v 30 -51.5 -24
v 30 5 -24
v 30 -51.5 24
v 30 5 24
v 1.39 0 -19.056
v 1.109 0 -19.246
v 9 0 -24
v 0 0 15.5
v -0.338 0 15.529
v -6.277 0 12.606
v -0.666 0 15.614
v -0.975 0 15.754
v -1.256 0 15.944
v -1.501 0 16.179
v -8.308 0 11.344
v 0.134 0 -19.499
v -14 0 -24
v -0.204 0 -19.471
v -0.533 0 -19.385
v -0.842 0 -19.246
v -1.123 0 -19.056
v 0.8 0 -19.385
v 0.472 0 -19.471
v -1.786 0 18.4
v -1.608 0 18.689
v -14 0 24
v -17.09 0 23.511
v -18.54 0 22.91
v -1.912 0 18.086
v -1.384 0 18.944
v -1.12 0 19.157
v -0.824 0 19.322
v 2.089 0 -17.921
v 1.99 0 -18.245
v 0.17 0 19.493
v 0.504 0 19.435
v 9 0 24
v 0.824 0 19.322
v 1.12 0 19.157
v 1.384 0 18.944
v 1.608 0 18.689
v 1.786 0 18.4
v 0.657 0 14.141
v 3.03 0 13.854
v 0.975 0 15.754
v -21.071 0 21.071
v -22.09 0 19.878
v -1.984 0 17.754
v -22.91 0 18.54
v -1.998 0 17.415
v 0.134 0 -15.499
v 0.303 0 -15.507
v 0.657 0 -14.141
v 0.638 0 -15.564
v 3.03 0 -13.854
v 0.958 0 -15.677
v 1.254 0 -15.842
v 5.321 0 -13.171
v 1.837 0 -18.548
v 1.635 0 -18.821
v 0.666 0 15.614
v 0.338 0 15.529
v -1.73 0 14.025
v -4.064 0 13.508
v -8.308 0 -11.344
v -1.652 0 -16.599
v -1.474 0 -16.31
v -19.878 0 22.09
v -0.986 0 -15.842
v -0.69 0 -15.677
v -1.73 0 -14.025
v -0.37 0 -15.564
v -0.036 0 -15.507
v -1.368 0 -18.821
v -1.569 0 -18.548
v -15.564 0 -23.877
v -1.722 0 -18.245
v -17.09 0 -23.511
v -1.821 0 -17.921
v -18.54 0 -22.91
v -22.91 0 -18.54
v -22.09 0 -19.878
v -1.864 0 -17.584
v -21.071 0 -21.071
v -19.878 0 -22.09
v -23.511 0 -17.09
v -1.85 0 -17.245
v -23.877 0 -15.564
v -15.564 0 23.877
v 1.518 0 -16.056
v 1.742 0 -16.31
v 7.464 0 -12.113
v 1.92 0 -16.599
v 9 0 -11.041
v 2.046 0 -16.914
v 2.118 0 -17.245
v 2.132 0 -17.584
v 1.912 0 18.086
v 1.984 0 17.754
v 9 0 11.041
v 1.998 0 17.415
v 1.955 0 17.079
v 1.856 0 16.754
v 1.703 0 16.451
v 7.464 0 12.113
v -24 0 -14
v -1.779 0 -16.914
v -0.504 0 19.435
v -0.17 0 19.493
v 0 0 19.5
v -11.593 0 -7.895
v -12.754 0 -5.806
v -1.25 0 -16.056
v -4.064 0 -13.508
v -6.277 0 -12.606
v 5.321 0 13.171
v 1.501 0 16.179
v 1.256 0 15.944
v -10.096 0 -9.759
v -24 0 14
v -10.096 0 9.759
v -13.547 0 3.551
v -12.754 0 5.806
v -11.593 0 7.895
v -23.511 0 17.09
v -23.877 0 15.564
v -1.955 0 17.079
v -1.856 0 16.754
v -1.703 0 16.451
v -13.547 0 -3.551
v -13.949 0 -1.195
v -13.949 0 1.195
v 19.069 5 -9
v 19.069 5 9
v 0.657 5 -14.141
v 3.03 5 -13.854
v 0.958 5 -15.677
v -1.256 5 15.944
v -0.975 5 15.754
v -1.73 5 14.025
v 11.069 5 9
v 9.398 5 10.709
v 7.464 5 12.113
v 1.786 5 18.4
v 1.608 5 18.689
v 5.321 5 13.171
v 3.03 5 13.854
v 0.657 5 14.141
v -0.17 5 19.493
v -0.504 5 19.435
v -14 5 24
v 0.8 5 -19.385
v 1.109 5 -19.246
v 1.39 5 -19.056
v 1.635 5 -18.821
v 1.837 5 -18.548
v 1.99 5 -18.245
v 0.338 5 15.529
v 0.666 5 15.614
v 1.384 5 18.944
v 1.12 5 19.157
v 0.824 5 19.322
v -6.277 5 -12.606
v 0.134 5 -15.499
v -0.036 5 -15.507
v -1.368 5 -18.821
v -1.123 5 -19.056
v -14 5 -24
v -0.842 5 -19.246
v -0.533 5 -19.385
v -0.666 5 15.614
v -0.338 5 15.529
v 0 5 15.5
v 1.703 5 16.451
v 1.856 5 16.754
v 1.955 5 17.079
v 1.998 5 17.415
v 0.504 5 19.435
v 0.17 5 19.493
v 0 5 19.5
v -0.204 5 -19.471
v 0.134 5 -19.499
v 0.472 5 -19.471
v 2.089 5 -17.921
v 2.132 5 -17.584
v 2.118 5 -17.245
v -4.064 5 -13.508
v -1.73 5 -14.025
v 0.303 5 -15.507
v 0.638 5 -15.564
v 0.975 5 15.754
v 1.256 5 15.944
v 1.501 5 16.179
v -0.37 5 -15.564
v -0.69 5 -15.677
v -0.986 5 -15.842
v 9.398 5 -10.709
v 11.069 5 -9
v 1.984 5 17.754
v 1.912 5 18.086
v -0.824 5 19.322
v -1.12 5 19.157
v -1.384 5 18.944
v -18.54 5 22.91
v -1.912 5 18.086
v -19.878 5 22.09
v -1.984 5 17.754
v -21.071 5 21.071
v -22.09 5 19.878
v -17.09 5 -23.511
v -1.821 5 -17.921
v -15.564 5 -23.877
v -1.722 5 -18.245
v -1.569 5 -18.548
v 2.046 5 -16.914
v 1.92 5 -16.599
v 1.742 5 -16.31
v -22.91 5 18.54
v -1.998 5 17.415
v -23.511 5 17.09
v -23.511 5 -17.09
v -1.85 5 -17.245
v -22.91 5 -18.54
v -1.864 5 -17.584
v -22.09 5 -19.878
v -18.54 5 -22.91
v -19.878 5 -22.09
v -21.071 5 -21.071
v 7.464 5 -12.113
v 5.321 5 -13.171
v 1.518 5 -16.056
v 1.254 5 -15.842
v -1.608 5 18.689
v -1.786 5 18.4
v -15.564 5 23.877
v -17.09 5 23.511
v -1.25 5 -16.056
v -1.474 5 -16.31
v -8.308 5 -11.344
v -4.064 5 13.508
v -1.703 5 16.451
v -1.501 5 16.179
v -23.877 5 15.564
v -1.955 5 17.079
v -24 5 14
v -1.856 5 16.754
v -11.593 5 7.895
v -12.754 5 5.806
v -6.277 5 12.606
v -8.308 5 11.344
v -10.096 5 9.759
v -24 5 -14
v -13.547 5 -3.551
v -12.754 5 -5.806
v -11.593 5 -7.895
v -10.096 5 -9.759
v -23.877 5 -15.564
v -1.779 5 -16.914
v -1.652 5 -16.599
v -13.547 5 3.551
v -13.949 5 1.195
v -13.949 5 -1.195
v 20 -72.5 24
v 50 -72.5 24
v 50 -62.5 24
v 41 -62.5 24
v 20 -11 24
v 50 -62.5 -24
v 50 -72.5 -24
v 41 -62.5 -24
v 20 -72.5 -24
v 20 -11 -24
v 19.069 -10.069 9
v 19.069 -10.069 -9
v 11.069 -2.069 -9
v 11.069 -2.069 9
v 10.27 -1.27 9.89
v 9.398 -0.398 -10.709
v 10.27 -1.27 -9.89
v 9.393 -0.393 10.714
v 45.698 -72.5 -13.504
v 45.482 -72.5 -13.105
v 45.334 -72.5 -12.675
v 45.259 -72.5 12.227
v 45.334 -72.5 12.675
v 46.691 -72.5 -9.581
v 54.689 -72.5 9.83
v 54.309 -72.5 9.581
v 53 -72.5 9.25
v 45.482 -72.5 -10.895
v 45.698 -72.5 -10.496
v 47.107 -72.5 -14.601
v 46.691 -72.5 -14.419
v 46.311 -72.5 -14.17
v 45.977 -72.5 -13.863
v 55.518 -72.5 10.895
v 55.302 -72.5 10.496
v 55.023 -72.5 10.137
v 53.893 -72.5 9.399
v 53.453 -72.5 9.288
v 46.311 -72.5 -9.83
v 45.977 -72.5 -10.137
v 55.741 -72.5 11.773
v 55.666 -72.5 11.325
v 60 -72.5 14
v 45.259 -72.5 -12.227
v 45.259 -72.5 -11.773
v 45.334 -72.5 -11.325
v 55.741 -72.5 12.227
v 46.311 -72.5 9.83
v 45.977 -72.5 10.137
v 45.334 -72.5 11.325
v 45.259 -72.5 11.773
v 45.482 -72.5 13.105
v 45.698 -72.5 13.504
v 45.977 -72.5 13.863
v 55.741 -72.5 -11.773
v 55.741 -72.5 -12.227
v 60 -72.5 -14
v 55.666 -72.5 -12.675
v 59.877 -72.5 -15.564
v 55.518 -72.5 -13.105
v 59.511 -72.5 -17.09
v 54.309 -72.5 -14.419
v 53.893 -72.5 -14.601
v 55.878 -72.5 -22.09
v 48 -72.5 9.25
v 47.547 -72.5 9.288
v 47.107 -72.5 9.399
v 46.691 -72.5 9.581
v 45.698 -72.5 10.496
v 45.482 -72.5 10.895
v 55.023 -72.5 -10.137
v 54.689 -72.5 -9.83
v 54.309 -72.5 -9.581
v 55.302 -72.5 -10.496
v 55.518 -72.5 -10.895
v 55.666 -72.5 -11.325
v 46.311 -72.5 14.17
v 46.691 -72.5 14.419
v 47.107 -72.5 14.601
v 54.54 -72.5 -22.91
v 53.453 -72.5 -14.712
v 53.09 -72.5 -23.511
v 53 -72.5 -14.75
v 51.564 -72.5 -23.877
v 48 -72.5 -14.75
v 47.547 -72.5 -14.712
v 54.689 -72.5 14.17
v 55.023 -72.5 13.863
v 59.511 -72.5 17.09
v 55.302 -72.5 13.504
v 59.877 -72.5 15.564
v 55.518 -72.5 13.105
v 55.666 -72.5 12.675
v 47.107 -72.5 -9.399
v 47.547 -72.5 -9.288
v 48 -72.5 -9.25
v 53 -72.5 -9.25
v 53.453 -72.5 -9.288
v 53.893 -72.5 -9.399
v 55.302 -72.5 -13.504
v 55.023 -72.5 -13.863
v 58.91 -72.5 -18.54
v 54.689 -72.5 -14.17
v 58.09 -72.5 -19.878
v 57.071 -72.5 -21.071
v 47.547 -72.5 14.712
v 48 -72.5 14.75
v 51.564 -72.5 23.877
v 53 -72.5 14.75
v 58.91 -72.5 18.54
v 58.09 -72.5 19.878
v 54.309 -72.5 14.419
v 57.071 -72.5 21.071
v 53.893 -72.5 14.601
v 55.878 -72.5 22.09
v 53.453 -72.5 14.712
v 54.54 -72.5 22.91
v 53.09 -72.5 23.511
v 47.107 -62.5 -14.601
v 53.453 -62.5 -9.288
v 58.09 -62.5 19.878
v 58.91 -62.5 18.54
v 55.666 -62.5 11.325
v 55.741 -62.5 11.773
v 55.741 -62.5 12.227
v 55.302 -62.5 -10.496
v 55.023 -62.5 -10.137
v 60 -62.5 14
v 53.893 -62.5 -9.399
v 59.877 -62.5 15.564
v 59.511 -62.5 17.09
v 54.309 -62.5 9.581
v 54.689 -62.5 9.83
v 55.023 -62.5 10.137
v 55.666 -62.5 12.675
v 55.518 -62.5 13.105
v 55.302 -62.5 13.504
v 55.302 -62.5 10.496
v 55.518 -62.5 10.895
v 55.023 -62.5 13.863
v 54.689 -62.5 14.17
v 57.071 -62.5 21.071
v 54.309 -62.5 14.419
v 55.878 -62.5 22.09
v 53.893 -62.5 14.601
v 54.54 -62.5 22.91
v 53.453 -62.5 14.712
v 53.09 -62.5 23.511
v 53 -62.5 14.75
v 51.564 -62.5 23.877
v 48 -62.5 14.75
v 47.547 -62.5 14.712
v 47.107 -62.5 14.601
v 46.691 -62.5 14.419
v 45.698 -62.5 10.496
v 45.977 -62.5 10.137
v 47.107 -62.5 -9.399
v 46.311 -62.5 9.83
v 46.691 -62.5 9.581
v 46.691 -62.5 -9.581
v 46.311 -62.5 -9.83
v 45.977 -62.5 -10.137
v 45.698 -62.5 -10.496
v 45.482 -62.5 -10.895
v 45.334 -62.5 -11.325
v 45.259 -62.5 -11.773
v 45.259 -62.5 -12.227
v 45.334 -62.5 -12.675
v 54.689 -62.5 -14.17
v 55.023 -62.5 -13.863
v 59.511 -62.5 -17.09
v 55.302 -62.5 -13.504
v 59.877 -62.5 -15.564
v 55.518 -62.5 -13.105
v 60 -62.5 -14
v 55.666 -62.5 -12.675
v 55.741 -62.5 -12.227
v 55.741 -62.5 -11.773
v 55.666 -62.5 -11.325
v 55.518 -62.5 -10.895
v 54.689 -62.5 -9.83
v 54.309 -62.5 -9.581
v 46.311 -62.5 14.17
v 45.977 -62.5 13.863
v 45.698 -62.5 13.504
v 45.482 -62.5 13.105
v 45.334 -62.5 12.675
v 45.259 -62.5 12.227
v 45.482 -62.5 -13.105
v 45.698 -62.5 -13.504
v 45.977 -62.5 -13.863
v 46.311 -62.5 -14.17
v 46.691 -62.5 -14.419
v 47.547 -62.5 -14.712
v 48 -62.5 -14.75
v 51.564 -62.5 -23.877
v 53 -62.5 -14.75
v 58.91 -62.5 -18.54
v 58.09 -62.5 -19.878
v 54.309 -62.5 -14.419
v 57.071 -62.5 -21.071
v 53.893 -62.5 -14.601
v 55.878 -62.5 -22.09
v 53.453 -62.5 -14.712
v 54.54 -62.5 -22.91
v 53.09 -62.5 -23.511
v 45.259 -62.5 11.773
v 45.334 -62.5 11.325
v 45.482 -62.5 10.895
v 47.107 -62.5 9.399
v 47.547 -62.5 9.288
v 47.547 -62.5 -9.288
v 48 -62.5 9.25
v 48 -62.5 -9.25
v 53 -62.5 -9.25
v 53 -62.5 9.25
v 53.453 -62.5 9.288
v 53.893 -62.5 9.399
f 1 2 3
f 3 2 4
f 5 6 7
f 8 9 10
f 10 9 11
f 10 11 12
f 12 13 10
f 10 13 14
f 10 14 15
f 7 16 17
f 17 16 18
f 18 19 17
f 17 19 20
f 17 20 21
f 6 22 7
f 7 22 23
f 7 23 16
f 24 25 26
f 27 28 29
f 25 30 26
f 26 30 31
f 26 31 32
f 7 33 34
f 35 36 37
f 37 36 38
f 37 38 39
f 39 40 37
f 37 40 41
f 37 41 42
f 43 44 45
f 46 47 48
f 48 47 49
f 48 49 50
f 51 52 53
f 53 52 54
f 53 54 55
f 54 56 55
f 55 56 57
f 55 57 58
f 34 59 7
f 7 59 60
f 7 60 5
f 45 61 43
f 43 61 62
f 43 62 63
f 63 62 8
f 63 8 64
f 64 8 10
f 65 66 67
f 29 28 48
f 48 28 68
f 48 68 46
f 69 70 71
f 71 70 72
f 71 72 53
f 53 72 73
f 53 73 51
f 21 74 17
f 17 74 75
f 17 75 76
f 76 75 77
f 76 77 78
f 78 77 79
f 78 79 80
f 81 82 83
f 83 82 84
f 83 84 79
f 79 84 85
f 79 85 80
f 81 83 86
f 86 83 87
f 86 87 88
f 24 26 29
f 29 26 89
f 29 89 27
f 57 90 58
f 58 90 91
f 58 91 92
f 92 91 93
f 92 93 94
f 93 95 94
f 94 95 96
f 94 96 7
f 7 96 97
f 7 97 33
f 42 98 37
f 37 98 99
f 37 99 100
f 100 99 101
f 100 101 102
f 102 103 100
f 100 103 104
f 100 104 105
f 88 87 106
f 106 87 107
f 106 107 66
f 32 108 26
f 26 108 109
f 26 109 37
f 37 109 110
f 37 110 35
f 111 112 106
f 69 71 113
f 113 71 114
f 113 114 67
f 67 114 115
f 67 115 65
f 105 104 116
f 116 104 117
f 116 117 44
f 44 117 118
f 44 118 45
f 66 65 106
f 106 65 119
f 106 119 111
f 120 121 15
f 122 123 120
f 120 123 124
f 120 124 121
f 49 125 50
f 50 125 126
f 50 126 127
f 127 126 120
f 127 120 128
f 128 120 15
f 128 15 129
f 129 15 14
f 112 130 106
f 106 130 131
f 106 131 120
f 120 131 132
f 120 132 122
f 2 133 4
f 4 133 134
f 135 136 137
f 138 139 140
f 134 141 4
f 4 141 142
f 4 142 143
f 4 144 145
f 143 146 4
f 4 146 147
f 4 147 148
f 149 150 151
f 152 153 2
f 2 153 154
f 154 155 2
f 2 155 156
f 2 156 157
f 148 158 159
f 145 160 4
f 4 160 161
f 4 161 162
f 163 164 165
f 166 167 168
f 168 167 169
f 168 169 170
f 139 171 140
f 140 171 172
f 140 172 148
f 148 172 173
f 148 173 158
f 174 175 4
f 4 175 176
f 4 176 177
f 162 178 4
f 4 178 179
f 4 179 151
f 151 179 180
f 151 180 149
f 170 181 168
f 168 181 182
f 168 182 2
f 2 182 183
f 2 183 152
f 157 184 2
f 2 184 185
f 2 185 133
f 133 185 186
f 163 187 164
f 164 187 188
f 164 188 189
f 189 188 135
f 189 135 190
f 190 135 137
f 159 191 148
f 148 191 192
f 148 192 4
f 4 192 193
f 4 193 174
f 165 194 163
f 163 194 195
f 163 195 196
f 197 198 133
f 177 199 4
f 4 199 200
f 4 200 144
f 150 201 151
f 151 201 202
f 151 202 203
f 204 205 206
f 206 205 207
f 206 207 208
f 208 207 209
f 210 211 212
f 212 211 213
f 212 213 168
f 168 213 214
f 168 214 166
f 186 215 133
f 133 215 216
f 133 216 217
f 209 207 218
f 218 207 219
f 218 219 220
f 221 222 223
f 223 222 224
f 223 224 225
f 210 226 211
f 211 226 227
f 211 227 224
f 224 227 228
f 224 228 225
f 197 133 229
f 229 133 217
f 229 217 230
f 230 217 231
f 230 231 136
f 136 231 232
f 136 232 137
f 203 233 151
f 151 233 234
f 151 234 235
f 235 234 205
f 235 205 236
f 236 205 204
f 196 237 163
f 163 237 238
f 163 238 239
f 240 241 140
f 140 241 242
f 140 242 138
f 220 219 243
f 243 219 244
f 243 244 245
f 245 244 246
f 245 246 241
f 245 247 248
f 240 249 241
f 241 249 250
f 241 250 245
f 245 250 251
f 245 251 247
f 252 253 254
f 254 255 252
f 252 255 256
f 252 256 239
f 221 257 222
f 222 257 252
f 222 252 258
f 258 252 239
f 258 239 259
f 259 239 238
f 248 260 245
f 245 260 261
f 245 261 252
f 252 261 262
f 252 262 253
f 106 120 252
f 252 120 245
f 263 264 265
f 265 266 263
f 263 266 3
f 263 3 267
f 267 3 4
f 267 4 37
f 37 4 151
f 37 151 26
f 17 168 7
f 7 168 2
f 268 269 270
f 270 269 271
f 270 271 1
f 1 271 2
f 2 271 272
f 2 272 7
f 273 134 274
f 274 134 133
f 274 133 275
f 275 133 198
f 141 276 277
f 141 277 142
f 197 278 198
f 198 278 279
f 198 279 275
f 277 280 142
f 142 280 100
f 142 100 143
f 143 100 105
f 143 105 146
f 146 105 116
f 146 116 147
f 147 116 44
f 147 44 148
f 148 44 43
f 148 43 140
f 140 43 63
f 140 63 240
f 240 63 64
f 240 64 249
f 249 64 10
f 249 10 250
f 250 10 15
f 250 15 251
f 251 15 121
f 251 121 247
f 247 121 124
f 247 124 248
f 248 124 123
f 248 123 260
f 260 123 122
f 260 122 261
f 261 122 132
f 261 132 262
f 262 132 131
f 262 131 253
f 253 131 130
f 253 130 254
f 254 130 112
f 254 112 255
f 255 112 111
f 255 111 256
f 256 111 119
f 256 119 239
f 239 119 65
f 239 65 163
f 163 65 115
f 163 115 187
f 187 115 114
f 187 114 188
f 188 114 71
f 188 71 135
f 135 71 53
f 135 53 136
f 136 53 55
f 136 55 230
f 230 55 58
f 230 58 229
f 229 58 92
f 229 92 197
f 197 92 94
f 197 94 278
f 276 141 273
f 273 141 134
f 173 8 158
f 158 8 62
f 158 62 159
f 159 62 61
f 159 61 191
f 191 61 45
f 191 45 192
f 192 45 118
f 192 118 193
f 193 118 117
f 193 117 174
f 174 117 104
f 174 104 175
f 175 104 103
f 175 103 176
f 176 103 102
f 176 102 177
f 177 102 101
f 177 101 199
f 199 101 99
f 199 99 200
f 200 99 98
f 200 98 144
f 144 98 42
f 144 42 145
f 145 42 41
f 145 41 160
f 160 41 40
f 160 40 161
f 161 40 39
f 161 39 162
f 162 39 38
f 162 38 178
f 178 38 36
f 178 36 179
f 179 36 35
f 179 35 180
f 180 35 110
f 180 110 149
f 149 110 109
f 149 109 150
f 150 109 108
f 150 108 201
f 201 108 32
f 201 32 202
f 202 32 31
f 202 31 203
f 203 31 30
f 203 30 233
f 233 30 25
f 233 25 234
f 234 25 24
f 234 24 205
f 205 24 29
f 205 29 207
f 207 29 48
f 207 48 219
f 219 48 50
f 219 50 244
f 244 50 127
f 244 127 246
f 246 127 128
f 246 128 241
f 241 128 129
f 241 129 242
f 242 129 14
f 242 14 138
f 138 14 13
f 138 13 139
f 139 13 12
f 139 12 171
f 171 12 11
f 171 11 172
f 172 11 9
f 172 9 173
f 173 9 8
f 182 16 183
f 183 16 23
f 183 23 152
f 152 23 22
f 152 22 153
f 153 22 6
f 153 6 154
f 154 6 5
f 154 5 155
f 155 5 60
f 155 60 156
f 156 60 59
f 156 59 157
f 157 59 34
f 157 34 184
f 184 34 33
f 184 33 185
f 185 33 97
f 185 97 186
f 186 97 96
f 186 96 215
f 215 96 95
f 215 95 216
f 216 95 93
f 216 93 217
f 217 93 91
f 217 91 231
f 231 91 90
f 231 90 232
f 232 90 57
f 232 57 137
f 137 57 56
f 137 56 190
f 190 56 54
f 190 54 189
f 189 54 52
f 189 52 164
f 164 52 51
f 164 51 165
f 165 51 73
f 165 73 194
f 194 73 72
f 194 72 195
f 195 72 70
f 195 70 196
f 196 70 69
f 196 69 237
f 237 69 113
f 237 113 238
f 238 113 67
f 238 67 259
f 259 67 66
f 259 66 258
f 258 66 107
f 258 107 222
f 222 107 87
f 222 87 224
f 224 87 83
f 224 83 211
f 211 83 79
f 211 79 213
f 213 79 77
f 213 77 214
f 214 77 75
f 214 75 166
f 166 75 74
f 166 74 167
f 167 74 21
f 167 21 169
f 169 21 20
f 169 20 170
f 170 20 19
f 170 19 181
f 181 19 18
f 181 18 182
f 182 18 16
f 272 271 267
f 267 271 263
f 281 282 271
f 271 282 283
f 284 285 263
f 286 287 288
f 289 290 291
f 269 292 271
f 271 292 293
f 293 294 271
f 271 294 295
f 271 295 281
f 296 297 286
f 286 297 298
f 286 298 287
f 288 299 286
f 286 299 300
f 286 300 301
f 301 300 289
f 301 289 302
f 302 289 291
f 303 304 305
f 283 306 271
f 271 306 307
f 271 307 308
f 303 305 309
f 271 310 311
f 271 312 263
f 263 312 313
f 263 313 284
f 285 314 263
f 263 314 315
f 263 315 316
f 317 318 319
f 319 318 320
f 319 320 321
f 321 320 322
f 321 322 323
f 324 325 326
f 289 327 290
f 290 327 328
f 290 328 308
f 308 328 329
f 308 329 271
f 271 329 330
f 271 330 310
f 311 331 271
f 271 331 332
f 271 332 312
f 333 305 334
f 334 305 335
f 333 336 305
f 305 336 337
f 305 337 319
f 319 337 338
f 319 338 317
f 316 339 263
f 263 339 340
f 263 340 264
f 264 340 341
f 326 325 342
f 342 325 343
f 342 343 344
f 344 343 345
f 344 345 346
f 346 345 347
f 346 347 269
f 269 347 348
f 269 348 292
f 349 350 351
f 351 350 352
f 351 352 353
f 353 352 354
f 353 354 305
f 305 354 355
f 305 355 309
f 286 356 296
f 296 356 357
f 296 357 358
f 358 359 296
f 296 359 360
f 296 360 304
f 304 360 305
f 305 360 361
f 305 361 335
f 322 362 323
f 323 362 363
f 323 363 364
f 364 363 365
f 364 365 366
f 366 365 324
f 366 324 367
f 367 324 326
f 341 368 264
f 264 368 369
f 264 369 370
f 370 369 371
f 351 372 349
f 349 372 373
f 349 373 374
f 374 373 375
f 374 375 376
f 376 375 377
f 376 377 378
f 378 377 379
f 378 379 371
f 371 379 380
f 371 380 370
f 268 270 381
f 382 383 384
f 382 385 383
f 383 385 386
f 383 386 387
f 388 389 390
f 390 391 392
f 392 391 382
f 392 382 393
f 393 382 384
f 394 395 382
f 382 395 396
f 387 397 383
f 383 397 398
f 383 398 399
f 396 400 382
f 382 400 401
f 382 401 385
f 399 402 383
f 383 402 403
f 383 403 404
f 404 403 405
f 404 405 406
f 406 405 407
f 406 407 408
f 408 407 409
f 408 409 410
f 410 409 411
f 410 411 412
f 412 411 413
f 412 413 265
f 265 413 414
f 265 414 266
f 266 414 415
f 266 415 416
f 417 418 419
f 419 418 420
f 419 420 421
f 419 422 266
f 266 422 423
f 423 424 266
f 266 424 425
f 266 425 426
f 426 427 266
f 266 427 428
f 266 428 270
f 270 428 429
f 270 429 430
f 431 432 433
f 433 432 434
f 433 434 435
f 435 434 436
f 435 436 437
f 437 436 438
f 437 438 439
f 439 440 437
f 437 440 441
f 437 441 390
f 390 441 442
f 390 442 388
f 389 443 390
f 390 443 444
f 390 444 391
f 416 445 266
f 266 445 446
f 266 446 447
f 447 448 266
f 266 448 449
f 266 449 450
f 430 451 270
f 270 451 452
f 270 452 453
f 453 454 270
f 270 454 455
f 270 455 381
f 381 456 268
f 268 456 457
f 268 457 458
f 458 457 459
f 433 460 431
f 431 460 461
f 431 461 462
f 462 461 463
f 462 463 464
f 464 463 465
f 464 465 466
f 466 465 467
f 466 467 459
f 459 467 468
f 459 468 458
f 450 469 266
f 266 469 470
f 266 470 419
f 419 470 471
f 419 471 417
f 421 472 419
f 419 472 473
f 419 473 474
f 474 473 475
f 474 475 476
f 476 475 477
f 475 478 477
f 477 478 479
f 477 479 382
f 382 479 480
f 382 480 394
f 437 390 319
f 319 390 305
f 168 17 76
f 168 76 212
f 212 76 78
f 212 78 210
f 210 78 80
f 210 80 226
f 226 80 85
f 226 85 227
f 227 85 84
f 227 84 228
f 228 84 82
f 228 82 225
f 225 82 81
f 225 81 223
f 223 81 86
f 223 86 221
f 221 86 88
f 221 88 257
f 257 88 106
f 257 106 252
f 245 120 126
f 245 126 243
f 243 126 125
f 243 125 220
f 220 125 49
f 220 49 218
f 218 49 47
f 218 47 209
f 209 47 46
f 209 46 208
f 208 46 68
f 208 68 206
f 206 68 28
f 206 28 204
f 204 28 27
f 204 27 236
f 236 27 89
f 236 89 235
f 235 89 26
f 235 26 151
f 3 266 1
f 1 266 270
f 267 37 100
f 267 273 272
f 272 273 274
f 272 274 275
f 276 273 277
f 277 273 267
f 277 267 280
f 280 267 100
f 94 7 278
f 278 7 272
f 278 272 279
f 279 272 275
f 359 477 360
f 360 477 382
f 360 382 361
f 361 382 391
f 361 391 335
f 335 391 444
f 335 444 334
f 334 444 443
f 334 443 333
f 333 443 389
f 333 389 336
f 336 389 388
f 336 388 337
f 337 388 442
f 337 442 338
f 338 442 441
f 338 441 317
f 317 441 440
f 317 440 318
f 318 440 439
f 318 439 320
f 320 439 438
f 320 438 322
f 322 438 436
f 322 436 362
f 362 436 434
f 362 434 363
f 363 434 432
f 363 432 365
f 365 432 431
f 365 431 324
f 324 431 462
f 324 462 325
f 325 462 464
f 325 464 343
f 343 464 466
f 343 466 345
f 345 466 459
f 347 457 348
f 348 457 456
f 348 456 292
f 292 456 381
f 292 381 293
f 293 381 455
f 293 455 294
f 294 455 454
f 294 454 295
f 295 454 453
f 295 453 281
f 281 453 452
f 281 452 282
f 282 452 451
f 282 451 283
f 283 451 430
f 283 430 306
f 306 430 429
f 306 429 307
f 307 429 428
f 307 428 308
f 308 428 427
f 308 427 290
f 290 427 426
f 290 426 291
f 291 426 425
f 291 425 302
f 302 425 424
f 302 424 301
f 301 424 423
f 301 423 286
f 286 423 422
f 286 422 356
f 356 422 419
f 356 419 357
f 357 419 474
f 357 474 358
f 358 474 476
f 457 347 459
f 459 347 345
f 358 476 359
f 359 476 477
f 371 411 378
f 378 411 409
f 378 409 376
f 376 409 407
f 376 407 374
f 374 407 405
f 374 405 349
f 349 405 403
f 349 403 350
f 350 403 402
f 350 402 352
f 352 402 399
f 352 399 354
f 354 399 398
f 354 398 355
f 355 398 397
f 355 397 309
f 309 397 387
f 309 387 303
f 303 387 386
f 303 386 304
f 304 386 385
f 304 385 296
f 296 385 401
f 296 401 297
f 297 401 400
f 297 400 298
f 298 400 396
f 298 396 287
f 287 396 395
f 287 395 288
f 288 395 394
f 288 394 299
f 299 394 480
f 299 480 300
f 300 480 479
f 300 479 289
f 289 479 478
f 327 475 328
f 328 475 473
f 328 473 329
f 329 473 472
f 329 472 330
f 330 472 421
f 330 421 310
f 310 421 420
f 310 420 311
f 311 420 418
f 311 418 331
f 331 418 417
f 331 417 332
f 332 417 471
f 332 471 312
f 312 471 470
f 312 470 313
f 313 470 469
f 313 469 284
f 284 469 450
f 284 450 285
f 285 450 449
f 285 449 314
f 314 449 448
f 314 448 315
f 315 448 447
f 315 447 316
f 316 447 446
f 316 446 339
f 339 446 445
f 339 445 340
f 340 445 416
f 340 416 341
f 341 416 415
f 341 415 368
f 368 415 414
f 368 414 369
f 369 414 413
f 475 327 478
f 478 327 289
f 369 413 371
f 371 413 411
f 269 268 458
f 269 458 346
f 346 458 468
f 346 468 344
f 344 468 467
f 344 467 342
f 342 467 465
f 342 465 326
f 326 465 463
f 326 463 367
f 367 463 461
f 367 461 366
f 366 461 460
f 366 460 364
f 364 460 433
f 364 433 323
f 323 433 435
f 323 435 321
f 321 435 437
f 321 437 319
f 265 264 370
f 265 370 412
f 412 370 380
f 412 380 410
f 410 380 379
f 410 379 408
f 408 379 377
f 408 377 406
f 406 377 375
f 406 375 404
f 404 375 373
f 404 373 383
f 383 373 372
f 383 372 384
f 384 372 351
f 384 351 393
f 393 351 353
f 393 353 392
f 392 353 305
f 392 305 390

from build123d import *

# Parameters (mm, degrees)
SKETCH1_W                 = 54
SKETCH1_H                 = 48
SKETCH1_R                 = 2
BOSS_EXTRUDE1_DEPTH       = 5
SKETCH2_W                 = 10
SKETCH2_H                 = 48
BOSS_EXTRUDE2_DEPTH       = 72.5
SKETCH3_W                 = 48
SKETCH3_H                 = 10
BOSS_EXTRUDE3_DEPTH       = 30
FILLET1_R                 = 10
CHAMFER1_SIZE             = 11
F_1_0MM_START             = -72.5
F_1_0MM_DOWEL_SLOT1_DEPTH = 10
FILLET2_R                 = 10


# Read off the part's stored shape, not the designer's step: Ø1.0mm Dowel Slot1
with BuildPart() as part:
    # Sketch1 → Boss-Extrude1 (new body)
    with BuildSketch(Plane(origin=(0, 0, 0), x_dir=(1, 0, 0), z_dir=(0, 1, 0))):
        with Locations((3, 0)):
            Rectangle(SKETCH1_W, SKETCH1_H)
        with Locations(Location((0.133743503, 17.499488926, 0), (0, 0, 270))):
            Circle(SKETCH1_R, mode=Mode.SUBTRACT)
        with Locations(Location((0, -17.5, 0), (0, 0, 270))):
            Circle(SKETCH1_R, mode=Mode.SUBTRACT)
        with BuildLine():
            Line((19.068905623, 9), (11.068905623, 9))
            ThreePointArc((11.068905623, 9), (-14, 0), (11.068905623, -9))
            Line((11.068905623, -9), (19.068905623, -9))
            Line((19.068905623, -9), (19.068905623, 9))
        make_face(mode=Mode.SUBTRACT)
    extrude(amount=BOSS_EXTRUDE1_DEPTH)

    # Sketch2 → Boss-Extrude2 (add)
    with BuildSketch(Plane.XZ):
        with Locations((25, 0)):
            Rectangle(SKETCH2_W, SKETCH2_H)
    extrude(amount=BOSS_EXTRUDE2_DEPTH)

    # Sketch3 → Boss-Extrude3 (add)
    with BuildSketch(Plane(origin=(30, 0, 0), x_dir=(0, 0, -1), z_dir=(1, 0, 0))):
        with Locations((0, -67.5)):
            Rectangle(SKETCH3_W, SKETCH3_H)
    extrude(amount=BOSS_EXTRUDE3_DEPTH)

    # Fillet1
    fillet1_edges = [part.edges().sort_by_distance(p)[0] for p in [
        (-24, 2.5, -24),
        (-24, 2.5, 24),
    ]]
    fillet(fillet1_edges, radius=FILLET1_R)

    # Chamfer1
    # the kernel refuses this chamfer: 11 mm, written as the material it adds along each edge
    with BuildSketch(Plane(origin=(20, 0, 24), x_dir=(-0.9996219169112968, 0.027495876610586372, 0), z_dir=(0, 0, -1))) as chamfer1_piece_1_section:
        Polygon((CHAMFER1_SIZE * 0.999621916911, -CHAMFER1_SIZE * 0.0274958766106), (-CHAMFER1_SIZE * 0.0274958766106, -CHAMFER1_SIZE * 0.999621916911), (0, 0), align=None)
    chamfer1_piece_1 = extrude(amount=48, mode=Mode.PRIVATE)
    chamfer1_piece_1 = split(chamfer1_piece_1, bisect_by=Plane(origin=(15.585058089, -3.181005548, 9), z_dir=(0, 0, 1)), keep=Keep.TOP, mode=Mode.PRIVATE)
    chamfer1_piece_1 = chamfer1_piece_1 - Plane(origin=(0.15, -3.181005548, 0), x_dir=(0.7716541076196256, 0, -0.6360424028268551), z_dir=(0, -1, 0)) * Cylinder(14.15, 140, mode=Mode.PRIVATE)
    chamfer1_piece_1 = split(chamfer1_piece_1, bisect_by=Plane(origin=(19.068905623, -3.181005548, 16.524598141), z_dir=(-1, 0, 0)), keep=Keep.TOP, mode=Mode.PRIVATE)
    add(chamfer1_piece_1)
    with BuildSketch(Plane(origin=(20, 0, 24), x_dir=(-0.9996219169112968, 0.027495876610586372, 0), z_dir=(0, 0, -1))) as chamfer1_piece_2_section:
        Polygon((CHAMFER1_SIZE * 0.999621916911, -CHAMFER1_SIZE * 0.0274958766106), (-CHAMFER1_SIZE * 0.0274958766106, -CHAMFER1_SIZE * 0.999621916911), (0, 0), align=None)
    chamfer1_piece_2 = extrude(amount=48, mode=Mode.PRIVATE)
    chamfer1_piece_2 = split(chamfer1_piece_2, bisect_by=Plane(origin=(19.684713813, -5.503387728, 9), z_dir=(0, 0, 1)), keep=Keep.TOP, mode=Mode.PRIVATE)
    chamfer1_piece_2 = split(chamfer1_piece_2, bisect_by=Plane(origin=(19.068905623, -5.503387728, 16.5), z_dir=(1, 0, 0)), keep=Keep.TOP, mode=Mode.PRIVATE)
    add(chamfer1_piece_2)
    with BuildSketch(Plane(origin=(20, 0, 24), x_dir=(-0.9996219169112968, 0.027495876610586372, 0), z_dir=(0, 0, -1))) as chamfer1_piece_3_section:
        Polygon((CHAMFER1_SIZE * 0.999621916911, -CHAMFER1_SIZE * 0.0274958766106), (-CHAMFER1_SIZE * 0.0274958766106, -CHAMFER1_SIZE * 0.999621916911), (0, 0), align=None)
    chamfer1_piece_3 = extrude(amount=48, mode=Mode.PRIVATE)
    chamfer1_piece_3 = split(chamfer1_piece_3, bisect_by=Plane(origin=(19.684713813, -5.503387728, 9), z_dir=(0, 0, -1)), keep=Keep.TOP, mode=Mode.PRIVATE)
    chamfer1_piece_3 = split(chamfer1_piece_3, bisect_by=Plane(origin=(19.068905623, -5.503387728, 0), z_dir=(1, 0, 0)), keep=Keep.TOP, mode=Mode.PRIVATE)
    chamfer1_piece_3 = split(chamfer1_piece_3, bisect_by=Plane(origin=(19.684713813, -5.503387728, -9), z_dir=(0, 0, 1)), keep=Keep.TOP, mode=Mode.PRIVATE)
    add(chamfer1_piece_3)
    with BuildSketch(Plane(origin=(20, 0, 24), x_dir=(-0.9996219169112968, 0.027495876610586372, 0), z_dir=(0, 0, -1))) as chamfer1_piece_4_section:
        Polygon((CHAMFER1_SIZE * 0.999621916911, -CHAMFER1_SIZE * 0.0274958766106), (-CHAMFER1_SIZE * 0.0274958766106, -CHAMFER1_SIZE * 0.999621916911), (0, 0), align=None)
    chamfer1_piece_4 = extrude(amount=48, mode=Mode.PRIVATE)
    chamfer1_piece_4 = chamfer1_piece_4 - Plane(origin=(0.15, -3.181005547, 0), x_dir=(0.7716541076196256, 0, -0.6360424028268551), z_dir=(0, -1, 0)) * Cylinder(14.15, 140, mode=Mode.PRIVATE)
    chamfer1_piece_4 = split(chamfer1_piece_4, bisect_by=Plane(origin=(19.068905623, -3.181005547, -16.524598139), z_dir=(-1, 0, 0)), keep=Keep.TOP, mode=Mode.PRIVATE)
    chamfer1_piece_4 = split(chamfer1_piece_4, bisect_by=Plane(origin=(15.585058087, -3.181005547, -9), z_dir=(0, 0, -1)), keep=Keep.TOP, mode=Mode.PRIVATE)
    add(chamfer1_piece_4)
    with BuildSketch(Plane(origin=(20, 0, 24), x_dir=(-0.9996219169112968, 0.027495876610586372, 0), z_dir=(0, 0, -1))) as chamfer1_piece_5_section:
        Polygon((CHAMFER1_SIZE * 0.999621916911, -CHAMFER1_SIZE * 0.0274958766106), (-CHAMFER1_SIZE * 0.0274958766106, -CHAMFER1_SIZE * 0.999621916911), (0, 0), align=None)
    chamfer1_piece_5 = extrude(amount=48, mode=Mode.PRIVATE)
    chamfer1_piece_5 = split(chamfer1_piece_5, bisect_by=Plane(origin=(19.068905623, -5.503387728, -16.5), z_dir=(1, 0, 0)), keep=Keep.TOP, mode=Mode.PRIVATE)
    chamfer1_piece_5 = split(chamfer1_piece_5, bisect_by=Plane(origin=(19.684713813, -5.503387728, -9), z_dir=(0, 0, -1)), keep=Keep.TOP, mode=Mode.PRIVATE)
    add(chamfer1_piece_5)
    with BuildSketch(Plane(origin=(30, -62.5, -24), x_dir=(-0.02749587661058594, 0.9996219169112968, 0), z_dir=(0, 0, 1))) as chamfer1_piece_6:
        Polygon((CHAMFER1_SIZE * 0.999621916911, -CHAMFER1_SIZE * 0.0274958766106), (-CHAMFER1_SIZE * 0.0274958766106, -CHAMFER1_SIZE * 0.999621916911), (0, 0), align=None)
    extrude(amount=48)

    # Ø1.0mm Dowel Slot1 outline → Ø1.0mm Dowel Slot1 (cut)
    with BuildSketch(Plane(origin=(0, 0, 0), x_dir=(1, 0, 0), z_dir=(0, 1, 0)).offset(F_1_0MM_START)):
        with BuildLine():
            Line((48, 9.25), (53, 9.25))
            ThreePointArc((53, 9.25), (55.75, 12), (53, 14.75))
            Line((53, 14.75), (48, 14.75))
            ThreePointArc((48, 14.75), (45.25, 12), (48, 9.25))
        make_face()
        with BuildLine():
            Line((48, -14.75), (53, -14.75))
            ThreePointArc((53, -14.75), (55.75, -12), (53, -9.25))
            Line((53, -9.25), (48, -9.25))
            ThreePointArc((48, -9.25), (45.25, -12), (48, -14.75))
        make_face()
    extrude(amount=F_1_0MM_DOWEL_SLOT1_DEPTH, mode=Mode.SUBTRACT)

    # Fillet2
    fillet2_edges = [part.edges().sort_by_distance(p)[0] for p in [
        (60, -67.5, 24),
        (60, -67.5, -24),
    ]]
    fillet(fillet2_edges, radius=FILLET2_R)


solid = part.part
